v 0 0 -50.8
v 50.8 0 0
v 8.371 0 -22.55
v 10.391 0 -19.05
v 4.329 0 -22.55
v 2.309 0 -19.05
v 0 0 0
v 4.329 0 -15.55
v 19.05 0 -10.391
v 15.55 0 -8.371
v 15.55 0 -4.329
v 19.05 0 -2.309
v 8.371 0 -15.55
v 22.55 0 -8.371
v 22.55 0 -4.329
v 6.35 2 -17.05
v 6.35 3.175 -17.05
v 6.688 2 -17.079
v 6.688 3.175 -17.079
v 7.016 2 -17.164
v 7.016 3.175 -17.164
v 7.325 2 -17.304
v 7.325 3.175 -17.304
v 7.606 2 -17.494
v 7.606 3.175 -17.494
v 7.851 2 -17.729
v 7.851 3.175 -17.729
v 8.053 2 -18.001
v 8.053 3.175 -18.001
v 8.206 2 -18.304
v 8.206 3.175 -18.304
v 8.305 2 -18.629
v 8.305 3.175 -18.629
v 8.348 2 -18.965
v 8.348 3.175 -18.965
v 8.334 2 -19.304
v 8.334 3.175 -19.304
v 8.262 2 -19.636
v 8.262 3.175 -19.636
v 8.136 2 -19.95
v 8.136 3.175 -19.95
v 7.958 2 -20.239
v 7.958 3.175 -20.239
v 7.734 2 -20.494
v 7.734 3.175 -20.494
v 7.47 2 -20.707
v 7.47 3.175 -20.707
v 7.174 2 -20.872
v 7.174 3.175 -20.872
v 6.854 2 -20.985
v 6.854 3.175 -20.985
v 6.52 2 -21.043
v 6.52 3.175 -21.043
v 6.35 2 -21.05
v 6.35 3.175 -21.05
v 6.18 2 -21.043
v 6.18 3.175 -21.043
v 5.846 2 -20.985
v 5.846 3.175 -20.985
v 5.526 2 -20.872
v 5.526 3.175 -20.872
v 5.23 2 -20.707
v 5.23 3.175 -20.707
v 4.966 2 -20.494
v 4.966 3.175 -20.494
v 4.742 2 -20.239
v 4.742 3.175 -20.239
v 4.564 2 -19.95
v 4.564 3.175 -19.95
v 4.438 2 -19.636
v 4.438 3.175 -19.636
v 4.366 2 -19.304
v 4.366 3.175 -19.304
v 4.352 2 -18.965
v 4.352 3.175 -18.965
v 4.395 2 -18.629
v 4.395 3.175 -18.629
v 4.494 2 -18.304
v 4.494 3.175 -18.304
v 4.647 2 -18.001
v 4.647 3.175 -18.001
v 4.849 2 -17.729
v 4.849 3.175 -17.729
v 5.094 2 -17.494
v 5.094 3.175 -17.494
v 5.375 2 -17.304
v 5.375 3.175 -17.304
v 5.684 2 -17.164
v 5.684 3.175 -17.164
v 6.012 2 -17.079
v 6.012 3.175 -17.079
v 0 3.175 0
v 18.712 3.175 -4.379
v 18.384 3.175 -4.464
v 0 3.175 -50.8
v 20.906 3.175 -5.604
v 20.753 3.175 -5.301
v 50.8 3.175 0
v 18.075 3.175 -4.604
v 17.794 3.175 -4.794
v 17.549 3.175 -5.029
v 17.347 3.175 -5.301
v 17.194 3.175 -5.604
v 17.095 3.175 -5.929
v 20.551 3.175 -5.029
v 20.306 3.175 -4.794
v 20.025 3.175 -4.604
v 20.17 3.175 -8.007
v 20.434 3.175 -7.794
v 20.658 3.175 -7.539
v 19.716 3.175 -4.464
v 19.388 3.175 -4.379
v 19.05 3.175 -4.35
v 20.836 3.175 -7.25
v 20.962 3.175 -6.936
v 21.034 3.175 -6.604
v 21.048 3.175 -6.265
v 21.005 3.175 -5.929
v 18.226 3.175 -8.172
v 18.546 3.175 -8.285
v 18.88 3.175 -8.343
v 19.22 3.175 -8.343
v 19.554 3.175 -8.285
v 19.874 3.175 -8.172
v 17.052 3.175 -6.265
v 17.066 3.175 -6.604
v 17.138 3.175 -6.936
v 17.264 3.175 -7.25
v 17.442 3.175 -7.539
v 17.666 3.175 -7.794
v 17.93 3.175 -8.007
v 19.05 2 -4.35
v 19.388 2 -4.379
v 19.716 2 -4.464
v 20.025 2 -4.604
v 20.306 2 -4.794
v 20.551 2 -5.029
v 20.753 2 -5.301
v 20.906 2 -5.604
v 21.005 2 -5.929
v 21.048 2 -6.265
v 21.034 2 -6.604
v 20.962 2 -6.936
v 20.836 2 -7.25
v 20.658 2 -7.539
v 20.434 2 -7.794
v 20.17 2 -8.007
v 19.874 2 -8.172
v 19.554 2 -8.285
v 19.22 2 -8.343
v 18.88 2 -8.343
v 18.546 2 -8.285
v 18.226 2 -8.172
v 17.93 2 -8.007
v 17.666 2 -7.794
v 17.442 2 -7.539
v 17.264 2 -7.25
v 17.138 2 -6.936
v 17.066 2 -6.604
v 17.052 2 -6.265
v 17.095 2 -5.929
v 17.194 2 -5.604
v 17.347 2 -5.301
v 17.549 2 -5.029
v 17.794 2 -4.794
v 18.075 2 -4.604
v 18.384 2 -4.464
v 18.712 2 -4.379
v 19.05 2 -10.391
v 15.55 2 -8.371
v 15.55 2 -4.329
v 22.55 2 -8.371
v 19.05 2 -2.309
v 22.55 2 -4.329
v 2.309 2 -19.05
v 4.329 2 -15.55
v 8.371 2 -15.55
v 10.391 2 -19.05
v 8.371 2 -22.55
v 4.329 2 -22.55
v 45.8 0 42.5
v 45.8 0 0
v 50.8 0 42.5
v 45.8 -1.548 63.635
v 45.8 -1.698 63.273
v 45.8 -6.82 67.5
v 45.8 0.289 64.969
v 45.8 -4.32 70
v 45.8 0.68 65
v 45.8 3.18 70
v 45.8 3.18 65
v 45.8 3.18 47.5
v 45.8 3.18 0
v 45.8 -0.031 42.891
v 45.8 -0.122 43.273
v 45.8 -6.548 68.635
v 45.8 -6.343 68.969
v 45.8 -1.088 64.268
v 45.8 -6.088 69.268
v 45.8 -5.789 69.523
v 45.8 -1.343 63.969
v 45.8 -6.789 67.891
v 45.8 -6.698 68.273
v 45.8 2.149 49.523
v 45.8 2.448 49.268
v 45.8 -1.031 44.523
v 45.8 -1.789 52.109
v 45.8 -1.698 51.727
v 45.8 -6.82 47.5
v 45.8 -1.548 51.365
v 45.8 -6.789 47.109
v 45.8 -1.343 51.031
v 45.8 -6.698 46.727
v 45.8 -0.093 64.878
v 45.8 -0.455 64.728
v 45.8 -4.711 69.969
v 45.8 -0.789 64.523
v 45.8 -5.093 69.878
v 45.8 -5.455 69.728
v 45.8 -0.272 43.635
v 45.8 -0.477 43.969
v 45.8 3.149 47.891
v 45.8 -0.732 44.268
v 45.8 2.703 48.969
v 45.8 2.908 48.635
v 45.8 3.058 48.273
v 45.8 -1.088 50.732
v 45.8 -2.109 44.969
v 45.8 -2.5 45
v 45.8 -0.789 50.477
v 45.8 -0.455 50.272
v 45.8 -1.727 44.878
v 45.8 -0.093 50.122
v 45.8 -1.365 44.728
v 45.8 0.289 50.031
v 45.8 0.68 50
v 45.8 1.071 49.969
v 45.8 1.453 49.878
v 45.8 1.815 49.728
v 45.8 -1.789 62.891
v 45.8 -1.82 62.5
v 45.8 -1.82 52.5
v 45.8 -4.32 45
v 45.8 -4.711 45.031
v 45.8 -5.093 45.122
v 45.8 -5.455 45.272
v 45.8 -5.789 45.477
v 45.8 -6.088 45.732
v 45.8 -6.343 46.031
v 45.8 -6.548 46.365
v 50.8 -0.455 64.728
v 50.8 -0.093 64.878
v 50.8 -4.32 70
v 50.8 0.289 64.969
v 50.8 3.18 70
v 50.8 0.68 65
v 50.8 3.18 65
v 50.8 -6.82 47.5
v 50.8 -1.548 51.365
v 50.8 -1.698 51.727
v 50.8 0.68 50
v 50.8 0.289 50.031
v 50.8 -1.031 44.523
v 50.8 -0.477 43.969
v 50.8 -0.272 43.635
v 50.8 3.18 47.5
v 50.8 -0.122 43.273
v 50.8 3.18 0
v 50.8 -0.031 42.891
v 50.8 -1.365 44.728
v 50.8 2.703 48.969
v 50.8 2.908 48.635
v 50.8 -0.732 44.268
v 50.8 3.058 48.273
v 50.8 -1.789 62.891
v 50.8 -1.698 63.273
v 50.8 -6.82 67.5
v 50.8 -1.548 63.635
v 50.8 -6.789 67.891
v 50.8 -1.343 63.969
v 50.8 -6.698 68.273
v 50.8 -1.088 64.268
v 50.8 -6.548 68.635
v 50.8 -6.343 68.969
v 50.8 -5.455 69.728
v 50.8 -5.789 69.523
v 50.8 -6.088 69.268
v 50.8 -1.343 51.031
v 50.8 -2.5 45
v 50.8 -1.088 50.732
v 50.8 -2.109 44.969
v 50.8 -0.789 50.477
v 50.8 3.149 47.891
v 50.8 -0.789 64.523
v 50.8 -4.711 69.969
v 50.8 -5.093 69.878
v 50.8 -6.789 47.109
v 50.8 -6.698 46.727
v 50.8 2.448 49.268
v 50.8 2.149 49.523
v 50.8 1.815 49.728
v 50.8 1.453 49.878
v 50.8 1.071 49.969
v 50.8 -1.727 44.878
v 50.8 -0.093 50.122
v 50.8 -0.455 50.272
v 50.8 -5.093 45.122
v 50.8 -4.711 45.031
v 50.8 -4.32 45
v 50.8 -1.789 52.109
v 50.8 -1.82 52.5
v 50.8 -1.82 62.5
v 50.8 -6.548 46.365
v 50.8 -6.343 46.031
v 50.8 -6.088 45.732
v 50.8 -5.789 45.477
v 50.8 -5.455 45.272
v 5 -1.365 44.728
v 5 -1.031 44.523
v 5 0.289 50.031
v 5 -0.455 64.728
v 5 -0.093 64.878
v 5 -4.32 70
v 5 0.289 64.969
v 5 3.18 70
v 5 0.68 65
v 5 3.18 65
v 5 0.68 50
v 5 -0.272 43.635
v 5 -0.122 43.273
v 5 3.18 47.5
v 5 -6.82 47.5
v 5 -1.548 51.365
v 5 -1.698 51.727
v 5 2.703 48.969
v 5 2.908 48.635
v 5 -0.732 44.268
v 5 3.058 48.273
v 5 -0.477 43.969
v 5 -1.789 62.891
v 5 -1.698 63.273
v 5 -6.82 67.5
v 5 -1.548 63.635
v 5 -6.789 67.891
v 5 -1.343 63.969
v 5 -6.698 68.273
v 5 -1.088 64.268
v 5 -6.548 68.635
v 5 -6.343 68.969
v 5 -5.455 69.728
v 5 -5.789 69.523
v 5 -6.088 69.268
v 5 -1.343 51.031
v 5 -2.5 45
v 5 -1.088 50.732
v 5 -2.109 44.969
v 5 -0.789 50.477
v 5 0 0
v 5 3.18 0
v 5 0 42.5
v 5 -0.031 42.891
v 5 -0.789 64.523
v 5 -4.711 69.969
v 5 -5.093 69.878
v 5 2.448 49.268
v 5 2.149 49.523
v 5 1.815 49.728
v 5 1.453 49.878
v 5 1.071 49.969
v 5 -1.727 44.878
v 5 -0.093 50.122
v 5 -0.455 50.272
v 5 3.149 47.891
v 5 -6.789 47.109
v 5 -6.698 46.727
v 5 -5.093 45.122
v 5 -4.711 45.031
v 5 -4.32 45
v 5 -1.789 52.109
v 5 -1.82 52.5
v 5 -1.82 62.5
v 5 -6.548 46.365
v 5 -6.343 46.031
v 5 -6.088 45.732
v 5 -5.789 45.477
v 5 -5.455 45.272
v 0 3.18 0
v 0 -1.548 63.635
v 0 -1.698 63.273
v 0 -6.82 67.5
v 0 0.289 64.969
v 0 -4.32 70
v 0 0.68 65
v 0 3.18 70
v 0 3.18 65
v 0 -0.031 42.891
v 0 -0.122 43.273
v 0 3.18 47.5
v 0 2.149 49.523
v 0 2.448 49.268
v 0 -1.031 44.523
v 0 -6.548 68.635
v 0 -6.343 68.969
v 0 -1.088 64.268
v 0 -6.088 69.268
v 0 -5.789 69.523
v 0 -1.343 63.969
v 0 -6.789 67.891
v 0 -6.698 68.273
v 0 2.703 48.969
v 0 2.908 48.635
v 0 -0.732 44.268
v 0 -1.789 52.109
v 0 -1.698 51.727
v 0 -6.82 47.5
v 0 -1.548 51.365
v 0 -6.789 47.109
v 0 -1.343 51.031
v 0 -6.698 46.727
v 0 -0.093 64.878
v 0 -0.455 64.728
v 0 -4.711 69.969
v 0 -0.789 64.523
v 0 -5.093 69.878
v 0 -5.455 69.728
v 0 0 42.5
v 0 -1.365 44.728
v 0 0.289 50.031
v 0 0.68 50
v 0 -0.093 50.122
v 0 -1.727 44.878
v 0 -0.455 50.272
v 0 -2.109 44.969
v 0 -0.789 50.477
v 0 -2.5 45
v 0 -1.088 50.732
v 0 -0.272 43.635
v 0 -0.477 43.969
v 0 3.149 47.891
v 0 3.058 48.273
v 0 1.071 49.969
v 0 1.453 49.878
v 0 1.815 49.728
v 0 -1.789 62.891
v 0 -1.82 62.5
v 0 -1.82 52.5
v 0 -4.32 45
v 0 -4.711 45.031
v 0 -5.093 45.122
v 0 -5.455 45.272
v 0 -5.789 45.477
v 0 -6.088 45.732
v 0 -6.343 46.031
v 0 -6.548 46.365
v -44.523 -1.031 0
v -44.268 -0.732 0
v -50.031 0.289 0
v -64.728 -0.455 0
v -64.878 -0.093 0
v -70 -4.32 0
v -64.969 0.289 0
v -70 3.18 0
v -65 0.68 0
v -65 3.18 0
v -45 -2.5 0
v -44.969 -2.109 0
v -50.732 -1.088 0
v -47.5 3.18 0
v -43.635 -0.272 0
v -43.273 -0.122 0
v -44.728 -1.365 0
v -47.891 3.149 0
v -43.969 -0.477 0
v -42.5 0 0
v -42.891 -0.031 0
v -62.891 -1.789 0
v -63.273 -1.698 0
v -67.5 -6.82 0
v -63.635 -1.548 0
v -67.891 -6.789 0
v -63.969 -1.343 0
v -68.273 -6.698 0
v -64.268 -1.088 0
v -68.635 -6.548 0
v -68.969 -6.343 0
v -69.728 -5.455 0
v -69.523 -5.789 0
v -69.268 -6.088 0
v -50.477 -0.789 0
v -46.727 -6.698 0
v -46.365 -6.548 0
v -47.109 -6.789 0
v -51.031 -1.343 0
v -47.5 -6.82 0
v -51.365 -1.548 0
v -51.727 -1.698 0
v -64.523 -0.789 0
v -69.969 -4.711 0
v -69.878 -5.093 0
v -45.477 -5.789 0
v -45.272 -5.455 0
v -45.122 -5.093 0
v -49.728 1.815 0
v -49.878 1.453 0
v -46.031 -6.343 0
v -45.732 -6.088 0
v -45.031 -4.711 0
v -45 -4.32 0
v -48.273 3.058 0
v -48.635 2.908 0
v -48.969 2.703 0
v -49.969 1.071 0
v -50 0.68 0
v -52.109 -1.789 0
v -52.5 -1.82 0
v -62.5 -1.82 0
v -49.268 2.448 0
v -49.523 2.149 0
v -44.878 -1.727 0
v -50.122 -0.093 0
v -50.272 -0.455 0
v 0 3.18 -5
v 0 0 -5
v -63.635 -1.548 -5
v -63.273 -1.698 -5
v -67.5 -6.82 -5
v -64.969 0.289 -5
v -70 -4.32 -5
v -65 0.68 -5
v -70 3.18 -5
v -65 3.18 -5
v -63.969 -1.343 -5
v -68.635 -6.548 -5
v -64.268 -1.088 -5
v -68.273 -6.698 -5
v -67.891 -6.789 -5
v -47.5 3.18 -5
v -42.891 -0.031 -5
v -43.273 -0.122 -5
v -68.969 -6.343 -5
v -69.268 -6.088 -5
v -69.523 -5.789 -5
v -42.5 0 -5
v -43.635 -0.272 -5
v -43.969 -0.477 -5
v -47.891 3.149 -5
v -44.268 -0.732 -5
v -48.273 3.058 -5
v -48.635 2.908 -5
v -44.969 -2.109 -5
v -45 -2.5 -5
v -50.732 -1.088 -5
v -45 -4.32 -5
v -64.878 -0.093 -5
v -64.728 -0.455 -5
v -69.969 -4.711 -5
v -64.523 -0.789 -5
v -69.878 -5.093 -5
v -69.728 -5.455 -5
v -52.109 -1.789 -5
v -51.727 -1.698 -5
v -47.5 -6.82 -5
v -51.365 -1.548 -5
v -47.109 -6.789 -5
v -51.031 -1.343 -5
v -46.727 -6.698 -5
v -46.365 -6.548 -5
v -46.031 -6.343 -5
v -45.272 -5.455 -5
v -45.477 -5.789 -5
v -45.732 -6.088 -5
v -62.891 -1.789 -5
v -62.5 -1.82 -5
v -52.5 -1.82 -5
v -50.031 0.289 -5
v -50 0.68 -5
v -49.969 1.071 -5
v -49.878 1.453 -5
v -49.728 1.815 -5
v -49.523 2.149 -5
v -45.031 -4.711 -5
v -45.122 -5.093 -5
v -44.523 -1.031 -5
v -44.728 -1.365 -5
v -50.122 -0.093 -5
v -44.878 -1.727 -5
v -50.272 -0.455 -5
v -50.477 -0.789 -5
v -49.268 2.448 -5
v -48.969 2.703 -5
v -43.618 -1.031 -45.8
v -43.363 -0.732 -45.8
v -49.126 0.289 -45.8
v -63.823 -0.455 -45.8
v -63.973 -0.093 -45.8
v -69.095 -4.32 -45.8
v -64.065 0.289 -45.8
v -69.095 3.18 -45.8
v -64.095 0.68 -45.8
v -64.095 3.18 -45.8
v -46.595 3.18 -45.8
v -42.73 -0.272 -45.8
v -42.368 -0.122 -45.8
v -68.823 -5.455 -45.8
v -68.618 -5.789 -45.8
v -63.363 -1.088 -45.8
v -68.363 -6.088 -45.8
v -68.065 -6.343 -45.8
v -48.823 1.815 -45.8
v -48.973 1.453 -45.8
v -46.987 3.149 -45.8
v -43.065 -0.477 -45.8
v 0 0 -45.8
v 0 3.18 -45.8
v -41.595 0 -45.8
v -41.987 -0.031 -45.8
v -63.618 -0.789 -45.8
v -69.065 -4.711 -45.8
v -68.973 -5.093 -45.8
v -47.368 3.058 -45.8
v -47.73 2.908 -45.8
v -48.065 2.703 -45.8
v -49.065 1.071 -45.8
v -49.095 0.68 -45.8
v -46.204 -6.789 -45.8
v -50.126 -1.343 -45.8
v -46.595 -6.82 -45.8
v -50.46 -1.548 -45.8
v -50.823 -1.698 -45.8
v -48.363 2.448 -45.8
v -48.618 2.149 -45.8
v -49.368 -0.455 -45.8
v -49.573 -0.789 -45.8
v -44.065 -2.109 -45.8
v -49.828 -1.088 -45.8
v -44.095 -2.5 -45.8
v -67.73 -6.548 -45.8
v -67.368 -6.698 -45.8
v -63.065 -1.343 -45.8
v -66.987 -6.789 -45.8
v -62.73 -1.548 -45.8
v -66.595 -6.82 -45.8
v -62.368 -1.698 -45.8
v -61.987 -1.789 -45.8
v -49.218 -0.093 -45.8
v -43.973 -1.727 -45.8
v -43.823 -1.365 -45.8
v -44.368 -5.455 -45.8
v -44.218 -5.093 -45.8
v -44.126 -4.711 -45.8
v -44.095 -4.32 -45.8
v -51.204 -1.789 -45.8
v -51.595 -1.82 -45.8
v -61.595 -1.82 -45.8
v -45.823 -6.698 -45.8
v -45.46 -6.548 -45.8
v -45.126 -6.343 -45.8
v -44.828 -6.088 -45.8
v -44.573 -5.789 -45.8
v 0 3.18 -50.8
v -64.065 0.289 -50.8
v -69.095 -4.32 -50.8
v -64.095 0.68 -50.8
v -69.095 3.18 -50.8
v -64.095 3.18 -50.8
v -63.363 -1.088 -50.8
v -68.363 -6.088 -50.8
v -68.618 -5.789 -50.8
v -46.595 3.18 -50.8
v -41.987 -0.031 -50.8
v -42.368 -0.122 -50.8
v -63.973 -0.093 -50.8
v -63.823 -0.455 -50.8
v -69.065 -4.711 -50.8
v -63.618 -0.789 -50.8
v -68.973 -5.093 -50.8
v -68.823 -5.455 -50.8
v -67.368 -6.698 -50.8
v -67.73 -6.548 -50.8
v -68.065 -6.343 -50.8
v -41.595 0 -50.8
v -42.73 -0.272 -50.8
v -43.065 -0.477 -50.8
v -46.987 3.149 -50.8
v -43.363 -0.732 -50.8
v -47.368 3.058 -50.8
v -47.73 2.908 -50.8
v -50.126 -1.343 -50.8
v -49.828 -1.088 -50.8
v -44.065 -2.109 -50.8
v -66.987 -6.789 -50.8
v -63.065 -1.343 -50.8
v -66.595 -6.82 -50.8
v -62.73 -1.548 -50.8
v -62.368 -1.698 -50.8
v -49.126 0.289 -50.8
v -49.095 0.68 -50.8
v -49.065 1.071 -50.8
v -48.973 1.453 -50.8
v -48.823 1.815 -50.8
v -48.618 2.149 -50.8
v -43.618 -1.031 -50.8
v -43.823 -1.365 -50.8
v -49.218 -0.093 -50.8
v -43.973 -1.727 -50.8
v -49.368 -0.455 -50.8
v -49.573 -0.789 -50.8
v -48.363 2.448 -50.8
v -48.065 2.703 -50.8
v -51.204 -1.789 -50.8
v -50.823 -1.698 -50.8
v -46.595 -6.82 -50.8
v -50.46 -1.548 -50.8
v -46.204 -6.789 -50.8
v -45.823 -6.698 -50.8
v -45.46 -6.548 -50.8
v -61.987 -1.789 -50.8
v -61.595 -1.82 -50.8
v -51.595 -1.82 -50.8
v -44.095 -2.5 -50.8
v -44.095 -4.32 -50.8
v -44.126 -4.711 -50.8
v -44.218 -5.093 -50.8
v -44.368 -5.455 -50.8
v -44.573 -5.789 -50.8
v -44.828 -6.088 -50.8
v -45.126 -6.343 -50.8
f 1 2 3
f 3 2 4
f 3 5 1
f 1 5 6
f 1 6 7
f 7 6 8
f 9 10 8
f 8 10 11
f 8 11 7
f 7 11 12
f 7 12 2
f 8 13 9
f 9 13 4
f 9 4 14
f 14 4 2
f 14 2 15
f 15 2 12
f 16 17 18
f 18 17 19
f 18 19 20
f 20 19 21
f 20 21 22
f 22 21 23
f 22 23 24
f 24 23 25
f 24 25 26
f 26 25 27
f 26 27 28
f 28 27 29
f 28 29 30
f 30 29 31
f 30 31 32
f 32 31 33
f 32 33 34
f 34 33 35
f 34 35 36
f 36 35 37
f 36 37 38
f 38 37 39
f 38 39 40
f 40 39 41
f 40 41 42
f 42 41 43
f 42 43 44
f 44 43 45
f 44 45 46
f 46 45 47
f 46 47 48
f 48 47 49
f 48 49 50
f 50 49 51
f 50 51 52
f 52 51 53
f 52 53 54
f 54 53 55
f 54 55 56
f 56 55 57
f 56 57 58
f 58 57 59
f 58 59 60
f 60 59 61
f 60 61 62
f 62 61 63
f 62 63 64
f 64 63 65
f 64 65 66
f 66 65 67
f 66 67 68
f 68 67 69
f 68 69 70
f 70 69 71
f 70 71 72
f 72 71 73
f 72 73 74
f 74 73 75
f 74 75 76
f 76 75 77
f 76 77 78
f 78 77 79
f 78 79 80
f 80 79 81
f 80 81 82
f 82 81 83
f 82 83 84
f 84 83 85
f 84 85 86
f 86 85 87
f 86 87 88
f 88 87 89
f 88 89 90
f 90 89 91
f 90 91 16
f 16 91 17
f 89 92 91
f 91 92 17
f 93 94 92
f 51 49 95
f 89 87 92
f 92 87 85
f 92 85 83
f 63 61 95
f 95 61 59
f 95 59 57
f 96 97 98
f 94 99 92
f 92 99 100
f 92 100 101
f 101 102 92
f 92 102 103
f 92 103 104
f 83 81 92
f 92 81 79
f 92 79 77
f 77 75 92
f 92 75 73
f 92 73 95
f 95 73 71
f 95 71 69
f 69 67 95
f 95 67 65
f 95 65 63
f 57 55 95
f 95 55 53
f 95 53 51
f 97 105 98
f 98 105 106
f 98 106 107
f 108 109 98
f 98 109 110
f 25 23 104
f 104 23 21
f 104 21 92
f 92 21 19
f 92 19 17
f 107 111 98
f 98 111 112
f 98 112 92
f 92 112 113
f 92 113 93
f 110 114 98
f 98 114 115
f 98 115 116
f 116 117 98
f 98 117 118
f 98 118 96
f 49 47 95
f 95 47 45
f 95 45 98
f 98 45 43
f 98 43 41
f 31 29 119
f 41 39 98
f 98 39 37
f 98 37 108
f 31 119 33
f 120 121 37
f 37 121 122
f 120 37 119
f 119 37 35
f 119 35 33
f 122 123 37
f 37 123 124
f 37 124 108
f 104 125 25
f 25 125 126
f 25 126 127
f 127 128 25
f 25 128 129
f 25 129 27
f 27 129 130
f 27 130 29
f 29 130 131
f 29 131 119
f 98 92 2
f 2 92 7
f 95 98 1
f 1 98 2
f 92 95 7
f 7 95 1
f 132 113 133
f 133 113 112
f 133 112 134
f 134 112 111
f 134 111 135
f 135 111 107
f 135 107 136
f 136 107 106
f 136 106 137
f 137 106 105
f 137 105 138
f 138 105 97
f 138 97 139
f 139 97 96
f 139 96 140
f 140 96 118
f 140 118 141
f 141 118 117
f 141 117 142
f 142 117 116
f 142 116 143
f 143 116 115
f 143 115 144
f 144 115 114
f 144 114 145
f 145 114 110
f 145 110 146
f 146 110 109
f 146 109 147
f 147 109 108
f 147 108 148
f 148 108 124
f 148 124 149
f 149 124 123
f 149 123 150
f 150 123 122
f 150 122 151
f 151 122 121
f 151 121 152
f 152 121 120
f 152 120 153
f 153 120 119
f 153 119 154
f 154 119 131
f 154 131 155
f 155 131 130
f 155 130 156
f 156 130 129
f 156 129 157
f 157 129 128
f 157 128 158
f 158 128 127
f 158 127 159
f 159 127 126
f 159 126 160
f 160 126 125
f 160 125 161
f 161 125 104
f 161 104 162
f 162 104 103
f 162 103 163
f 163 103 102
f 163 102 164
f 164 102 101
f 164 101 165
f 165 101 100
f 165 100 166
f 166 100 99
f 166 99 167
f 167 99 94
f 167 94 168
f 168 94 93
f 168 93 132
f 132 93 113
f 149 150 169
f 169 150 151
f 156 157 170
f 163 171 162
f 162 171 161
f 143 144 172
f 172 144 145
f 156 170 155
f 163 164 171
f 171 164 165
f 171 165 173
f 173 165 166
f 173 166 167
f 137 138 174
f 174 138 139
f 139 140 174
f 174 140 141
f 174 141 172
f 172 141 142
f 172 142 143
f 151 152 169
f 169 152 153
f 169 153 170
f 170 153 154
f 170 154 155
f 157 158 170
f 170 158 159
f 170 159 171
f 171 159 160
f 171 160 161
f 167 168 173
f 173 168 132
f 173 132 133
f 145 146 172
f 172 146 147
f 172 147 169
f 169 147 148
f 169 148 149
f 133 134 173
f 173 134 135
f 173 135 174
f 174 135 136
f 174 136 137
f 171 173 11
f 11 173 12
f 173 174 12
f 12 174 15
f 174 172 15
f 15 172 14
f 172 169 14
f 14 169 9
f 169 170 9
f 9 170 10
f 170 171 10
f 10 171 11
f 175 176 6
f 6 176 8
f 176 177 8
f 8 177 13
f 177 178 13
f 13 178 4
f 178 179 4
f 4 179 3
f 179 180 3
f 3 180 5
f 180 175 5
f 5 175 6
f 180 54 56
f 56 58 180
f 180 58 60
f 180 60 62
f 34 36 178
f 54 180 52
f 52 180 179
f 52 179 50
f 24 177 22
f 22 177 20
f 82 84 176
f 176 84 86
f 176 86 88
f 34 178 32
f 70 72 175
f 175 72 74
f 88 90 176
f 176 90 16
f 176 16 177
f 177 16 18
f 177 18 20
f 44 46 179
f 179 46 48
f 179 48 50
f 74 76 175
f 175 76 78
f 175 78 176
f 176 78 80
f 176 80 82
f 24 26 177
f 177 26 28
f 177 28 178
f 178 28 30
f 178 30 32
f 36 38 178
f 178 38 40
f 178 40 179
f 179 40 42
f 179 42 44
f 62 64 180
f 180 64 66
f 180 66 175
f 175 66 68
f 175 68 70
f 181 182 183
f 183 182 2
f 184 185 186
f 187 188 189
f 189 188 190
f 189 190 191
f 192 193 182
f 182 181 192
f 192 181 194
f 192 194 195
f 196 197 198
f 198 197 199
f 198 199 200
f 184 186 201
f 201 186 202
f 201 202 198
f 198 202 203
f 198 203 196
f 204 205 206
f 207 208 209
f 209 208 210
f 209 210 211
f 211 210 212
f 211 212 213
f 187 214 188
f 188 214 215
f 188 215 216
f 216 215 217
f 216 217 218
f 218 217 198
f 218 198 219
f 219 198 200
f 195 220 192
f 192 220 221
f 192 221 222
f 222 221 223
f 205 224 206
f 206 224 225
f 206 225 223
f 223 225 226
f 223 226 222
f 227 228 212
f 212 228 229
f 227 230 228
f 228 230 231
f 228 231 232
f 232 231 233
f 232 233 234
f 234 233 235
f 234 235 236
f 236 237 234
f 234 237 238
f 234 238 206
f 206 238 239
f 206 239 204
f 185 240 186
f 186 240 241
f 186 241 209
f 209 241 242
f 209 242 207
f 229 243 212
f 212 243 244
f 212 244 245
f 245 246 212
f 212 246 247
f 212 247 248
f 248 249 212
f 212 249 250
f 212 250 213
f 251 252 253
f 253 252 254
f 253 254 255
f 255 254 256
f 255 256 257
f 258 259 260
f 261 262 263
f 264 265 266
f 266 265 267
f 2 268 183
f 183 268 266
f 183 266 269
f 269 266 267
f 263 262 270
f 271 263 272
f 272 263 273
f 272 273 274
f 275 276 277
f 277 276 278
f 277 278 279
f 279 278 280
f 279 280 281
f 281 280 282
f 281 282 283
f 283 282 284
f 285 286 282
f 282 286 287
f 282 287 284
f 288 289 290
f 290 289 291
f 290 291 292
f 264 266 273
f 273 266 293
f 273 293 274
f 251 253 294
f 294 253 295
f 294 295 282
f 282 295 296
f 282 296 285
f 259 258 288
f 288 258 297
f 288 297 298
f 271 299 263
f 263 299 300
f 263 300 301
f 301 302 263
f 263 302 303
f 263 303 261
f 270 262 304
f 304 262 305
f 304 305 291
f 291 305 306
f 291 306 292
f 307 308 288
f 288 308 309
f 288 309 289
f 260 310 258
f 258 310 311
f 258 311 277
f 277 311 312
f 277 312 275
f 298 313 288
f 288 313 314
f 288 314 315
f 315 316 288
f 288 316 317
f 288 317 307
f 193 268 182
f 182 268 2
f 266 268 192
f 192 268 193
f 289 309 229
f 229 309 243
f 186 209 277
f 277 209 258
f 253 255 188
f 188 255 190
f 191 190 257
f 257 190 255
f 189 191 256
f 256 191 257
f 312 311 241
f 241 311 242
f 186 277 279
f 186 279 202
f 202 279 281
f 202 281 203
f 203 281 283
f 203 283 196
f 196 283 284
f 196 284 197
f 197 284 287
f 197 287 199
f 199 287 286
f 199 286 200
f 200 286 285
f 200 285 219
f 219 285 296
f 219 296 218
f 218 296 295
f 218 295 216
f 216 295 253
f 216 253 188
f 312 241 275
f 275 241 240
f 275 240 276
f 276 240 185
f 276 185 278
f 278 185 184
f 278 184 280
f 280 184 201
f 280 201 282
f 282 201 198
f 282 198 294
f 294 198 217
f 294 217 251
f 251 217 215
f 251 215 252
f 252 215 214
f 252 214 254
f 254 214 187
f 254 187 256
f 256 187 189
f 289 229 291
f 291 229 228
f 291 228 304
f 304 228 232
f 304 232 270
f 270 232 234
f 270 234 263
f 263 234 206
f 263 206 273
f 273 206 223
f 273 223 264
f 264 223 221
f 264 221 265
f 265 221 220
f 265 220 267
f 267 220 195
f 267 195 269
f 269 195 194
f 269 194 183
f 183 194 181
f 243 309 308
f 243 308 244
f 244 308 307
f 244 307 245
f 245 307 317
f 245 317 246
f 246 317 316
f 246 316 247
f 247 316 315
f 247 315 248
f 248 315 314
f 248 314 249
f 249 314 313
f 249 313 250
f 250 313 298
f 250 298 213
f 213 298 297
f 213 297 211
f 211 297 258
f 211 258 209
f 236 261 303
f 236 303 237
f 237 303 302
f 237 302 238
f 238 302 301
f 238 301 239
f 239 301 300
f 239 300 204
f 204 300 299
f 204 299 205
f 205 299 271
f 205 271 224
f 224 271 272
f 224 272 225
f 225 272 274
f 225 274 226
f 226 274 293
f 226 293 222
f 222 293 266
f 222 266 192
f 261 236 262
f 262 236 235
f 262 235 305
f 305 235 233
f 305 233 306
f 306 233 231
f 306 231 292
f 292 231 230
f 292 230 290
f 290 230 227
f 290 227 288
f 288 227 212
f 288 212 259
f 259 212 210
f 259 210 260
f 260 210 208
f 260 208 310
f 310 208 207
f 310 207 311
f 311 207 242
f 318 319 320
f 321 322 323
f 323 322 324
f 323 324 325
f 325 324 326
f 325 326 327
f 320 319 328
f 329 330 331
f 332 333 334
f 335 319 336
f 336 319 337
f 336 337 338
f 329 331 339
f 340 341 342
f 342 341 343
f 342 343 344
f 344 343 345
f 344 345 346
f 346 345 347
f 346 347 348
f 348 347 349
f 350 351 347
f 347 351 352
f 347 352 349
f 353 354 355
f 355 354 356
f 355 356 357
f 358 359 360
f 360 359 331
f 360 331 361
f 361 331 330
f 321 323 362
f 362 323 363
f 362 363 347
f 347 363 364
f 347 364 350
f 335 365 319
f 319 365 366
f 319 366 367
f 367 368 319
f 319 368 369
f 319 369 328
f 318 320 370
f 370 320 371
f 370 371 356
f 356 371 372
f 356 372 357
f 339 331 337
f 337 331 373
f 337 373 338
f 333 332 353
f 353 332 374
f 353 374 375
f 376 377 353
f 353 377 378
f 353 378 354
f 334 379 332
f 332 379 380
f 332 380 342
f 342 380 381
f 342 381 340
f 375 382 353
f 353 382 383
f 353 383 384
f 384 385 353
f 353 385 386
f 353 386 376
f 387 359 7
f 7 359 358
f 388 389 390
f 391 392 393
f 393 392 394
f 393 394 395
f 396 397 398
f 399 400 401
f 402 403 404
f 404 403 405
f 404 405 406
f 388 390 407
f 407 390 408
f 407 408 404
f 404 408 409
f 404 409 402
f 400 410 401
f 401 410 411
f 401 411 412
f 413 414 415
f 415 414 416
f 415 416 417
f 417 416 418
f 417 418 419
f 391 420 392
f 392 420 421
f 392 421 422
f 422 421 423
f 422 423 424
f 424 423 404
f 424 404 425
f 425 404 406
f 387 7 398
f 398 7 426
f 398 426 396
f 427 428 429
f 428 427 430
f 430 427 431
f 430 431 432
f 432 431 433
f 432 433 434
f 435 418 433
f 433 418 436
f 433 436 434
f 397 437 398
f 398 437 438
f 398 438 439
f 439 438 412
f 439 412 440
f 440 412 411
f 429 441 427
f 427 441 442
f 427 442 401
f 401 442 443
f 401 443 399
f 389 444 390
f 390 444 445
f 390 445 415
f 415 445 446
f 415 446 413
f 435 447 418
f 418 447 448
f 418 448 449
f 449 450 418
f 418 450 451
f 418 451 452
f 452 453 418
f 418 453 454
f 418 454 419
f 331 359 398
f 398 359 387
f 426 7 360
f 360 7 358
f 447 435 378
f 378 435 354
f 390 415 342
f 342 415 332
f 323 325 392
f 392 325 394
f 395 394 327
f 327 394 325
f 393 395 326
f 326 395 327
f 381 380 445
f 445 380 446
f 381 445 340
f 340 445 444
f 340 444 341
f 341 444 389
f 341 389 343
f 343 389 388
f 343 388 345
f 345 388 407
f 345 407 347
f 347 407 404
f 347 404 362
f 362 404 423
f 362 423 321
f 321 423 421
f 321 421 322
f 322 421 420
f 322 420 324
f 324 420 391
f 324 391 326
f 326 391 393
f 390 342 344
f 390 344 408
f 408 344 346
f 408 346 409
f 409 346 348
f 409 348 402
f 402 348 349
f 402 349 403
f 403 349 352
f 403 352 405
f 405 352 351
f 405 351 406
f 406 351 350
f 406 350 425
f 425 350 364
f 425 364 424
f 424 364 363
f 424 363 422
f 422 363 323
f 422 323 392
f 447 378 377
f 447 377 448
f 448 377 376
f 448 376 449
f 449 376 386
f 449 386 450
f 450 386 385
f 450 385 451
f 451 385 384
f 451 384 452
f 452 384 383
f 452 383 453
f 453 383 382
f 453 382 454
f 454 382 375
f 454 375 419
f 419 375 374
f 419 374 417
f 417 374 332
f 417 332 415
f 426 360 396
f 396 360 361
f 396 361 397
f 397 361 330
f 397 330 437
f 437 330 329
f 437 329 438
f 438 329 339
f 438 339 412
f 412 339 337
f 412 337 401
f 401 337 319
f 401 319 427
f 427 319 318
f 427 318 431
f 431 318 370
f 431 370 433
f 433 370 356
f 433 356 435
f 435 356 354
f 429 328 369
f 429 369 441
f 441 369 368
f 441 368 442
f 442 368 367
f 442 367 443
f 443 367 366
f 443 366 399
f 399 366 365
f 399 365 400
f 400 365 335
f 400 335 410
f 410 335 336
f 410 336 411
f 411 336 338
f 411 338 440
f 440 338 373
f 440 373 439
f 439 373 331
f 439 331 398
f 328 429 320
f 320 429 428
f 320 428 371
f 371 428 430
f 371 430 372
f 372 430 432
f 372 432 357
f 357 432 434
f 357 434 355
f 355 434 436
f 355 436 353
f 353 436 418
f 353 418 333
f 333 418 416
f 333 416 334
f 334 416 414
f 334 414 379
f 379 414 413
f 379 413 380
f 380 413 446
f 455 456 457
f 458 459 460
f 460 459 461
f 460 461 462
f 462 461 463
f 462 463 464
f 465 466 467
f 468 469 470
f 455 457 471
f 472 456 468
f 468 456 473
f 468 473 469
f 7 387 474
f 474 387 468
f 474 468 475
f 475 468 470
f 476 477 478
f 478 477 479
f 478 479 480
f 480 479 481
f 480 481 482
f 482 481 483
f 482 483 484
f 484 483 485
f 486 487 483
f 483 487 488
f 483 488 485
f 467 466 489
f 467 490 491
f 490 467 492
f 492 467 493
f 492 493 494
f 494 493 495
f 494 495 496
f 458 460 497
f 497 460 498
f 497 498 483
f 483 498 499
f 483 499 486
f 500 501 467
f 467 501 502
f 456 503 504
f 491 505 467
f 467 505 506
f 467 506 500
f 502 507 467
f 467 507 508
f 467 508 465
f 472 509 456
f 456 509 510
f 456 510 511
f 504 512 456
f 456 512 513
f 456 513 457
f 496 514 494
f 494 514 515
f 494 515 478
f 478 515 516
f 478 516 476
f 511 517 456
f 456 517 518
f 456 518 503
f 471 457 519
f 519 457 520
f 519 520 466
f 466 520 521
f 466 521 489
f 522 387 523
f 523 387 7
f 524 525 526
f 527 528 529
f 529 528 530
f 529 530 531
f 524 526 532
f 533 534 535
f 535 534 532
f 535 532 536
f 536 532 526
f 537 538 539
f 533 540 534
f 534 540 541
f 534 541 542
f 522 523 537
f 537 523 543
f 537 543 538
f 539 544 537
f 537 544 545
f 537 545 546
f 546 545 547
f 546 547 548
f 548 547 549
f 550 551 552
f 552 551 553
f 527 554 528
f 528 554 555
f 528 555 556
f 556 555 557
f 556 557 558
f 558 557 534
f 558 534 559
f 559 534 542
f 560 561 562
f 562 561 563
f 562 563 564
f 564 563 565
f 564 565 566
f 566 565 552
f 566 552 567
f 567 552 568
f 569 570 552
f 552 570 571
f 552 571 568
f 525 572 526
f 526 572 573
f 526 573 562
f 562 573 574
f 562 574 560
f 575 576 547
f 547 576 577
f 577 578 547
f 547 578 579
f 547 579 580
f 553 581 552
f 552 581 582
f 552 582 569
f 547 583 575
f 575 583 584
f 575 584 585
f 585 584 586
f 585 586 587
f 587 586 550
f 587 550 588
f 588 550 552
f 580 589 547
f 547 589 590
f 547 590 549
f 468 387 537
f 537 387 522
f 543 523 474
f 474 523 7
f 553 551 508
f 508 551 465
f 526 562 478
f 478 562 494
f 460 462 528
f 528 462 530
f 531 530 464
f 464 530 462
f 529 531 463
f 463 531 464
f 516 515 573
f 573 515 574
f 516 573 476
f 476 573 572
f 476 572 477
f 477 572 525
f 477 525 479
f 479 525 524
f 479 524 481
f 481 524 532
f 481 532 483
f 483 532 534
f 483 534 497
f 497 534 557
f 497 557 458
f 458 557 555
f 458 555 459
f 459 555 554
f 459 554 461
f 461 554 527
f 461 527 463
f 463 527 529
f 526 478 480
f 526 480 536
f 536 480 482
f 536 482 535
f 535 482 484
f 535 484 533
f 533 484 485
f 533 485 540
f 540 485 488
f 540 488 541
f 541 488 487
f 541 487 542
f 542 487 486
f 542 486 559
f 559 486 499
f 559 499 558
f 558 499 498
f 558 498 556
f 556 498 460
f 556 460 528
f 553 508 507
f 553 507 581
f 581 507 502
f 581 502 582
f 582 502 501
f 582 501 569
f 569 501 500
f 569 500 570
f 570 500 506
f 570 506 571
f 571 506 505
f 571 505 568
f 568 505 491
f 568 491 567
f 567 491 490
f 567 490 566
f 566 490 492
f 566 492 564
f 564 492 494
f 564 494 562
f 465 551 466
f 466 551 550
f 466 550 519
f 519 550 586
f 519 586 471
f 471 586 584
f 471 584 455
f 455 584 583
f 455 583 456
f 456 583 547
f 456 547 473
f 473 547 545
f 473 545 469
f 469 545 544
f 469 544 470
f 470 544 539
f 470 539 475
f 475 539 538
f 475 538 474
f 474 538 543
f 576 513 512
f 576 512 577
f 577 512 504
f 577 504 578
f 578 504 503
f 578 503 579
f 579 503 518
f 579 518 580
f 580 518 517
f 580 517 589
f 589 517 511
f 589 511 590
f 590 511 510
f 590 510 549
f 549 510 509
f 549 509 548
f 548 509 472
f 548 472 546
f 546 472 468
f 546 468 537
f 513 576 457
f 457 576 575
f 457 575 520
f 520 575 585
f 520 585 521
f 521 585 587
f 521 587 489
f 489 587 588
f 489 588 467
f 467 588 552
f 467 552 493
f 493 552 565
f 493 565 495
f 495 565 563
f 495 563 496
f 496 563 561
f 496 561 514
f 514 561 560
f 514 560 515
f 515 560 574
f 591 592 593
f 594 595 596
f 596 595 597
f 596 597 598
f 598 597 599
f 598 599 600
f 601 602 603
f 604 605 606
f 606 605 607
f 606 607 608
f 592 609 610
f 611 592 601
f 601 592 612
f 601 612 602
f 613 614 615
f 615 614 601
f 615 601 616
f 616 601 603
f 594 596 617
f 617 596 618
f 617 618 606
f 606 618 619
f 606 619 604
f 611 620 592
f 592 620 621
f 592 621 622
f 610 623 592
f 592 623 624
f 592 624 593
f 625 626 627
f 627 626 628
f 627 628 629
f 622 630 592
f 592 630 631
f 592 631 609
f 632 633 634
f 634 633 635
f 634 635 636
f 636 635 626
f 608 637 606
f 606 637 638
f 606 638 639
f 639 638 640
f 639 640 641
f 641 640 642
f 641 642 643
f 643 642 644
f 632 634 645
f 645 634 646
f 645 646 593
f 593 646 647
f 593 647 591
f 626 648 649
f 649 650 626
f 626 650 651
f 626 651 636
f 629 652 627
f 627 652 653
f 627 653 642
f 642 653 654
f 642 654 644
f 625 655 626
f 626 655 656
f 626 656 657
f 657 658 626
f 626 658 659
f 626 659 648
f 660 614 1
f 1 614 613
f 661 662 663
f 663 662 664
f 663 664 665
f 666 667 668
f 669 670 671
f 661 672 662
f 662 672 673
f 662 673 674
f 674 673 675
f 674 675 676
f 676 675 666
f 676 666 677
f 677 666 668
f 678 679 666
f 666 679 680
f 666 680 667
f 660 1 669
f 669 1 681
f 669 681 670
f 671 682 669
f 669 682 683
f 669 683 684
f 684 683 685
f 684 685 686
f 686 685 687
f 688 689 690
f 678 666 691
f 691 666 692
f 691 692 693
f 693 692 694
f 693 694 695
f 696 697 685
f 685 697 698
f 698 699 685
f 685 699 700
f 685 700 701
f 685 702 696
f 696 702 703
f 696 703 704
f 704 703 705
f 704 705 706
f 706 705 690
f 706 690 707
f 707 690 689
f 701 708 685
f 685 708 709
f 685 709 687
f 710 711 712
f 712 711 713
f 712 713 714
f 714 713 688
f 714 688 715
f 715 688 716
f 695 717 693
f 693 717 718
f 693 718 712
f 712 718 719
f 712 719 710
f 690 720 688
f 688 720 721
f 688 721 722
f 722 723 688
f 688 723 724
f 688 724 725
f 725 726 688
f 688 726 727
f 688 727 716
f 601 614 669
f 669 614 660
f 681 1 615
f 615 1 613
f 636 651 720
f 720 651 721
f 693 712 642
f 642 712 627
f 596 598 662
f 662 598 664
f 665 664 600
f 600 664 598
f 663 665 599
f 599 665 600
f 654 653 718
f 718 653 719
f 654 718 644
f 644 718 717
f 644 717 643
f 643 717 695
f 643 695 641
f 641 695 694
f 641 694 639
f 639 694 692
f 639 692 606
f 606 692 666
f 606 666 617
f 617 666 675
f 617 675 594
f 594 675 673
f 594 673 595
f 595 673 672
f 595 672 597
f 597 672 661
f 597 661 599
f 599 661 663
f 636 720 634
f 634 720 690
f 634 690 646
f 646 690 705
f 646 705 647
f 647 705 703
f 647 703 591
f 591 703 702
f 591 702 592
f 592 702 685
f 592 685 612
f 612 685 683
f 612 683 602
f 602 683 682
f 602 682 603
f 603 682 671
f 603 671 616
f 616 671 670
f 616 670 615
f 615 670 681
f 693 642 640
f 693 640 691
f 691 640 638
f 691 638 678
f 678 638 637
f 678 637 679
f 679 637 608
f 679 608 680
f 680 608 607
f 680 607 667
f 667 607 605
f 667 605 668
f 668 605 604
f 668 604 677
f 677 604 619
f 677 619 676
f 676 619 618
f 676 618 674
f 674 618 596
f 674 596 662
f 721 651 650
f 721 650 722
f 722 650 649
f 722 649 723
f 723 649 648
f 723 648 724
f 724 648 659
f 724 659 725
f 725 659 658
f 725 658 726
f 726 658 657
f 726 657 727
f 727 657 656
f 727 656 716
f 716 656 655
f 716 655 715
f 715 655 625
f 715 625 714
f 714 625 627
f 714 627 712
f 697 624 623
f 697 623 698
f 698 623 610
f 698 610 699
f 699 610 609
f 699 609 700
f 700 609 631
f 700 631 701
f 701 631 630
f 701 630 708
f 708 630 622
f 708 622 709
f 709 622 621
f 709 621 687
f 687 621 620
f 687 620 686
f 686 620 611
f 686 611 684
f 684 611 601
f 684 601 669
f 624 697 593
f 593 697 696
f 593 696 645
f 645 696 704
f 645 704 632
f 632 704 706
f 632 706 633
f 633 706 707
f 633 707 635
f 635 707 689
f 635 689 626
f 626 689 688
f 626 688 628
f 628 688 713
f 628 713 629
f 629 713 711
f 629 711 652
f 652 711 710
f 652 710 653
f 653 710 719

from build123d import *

# Parameters (mm, degrees)
BOSS_EXTRUDE1_DEPTH   = 3.175
SKETCH2_R             = 2
CUT_EXTRUDE1_DEPTH    = 72.912172996
CUT_EXTRUDE2_START    = -3.175
CUT_EXTRUDE2_DEPTH    = 2
SKETCH5_W             = 5
SKETCH5_H             = 45
BOSS_EXTRUDE6_DEPTH   = 3.18
BOSS_EXTRUDE6_2_DEPTH = 3.18
SKETCH5_W_2           = 45
SKETCH5_H_2           = 5
BOSS_EXTRUDE6_3_DEPTH = 3.18
SKETCH5_W_3           = 44.095460655
BOSS_EXTRUDE6_4_DEPTH = 3.18
BOSS_EXTRUDE7_DEPTH   = 5
FILLET1_START         = 45
FILLET1_DEPTH         = 7
FILLET1_START_2       = 45.8
FILLET1_2_DEPTH       = 5
BOSS_EXTRUDE8_DEPTH   = 5
FILLET2_START         = -1
FILLET2_DEPTH         = 7
FILLET2_2_DEPTH       = 5
BOSS_EXTRUDE9_DEPTH   = 5
FILLET3_START         = -6
FILLET3_DEPTH         = 7
FILLET3_START_2       = -5
FILLET3_2_DEPTH       = 5
BOSS_EXTRUDE10_DEPTH  = 5
FILLET4_START         = -52
FILLET4_DEPTH         = 7
FILLET4_START_2       = -50.8
FILLET4_2_DEPTH       = 5


with BuildPart() as part:
    # Sketch1 → Boss-Extrude1 (new body)
    with BuildSketch(Plane(origin=(0, 0, 0), x_dir=(1, 0, 0), z_dir=(0, 1, 0))):
        Polygon((0, 0), (50.8, 0), (0, 50.8), align=None)
    extrude(amount=BOSS_EXTRUDE1_DEPTH)

    # Sketch2 → Cut-Extrude1 (cut, through all)
    with BuildSketch(Plane(origin=(0, 3.175, 0), x_dir=(1, 0, 0), z_dir=(0, 1, 0))):
        with Locations(Location((19.05, 6.35, 0), (0, 0, 270))):
            Circle(SKETCH2_R)
        with Locations(Location((6.35, 19.05, 0), (0, 0, 90))):
            Circle(SKETCH2_R)
    extrude(amount=-CUT_EXTRUDE1_DEPTH, mode=Mode.SUBTRACT)

    # Sketch3 → Cut-Extrude2 (cut)
    with BuildSketch(Plane(origin=(0, 3.175, 0), x_dir=(1, 0, 0), z_dir=(0, 1, 0)).offset(CUT_EXTRUDE2_START)):
        Polygon((8.370723055, 15.550005), (10.391446111, 19.05), (8.370723055, 22.549995), (4.329276945, 22.549995), (2.308553889, 19.05), (4.329276945, 15.550005), align=None)
        Polygon((22.549995, 4.329276945), (19.05, 2.308553889), (15.550005, 4.329276945), (15.550005, 8.370723055), (19.05, 10.391446111), (22.549995, 8.370723055), align=None)
    extrude(amount=CUT_EXTRUDE2_DEPTH, mode=Mode.SUBTRACT)


with BuildPart() as body_2:
    # Sketch5 → Boss-Extrude6 (new body)
    with BuildSketch(Plane(origin=(0, 0, 0), x_dir=(1, 0, 0), z_dir=(0, 1, 0))):
        with Locations((48.3, -22.5)):
            Rectangle(SKETCH5_W, SKETCH5_H)
    extrude(amount=BOSS_EXTRUDE6_DEPTH)

    # Sketch7 → Boss-Extrude7 (add)
    with BuildSketch(Plane(origin=(50.8, 0, 0), x_dir=(0, 0, -1), z_dir=(1, 0, 0))):
        Polygon((-45, 3.18), (-50, 3.18), (-50, -1.82), (-65, -1.82), (-65, 3.18), (-70, 3.18), (-70, -6.82), (-45, -6.82), align=None)
    extrude(amount=-BOSS_EXTRUDE7_DEPTH)

    # Fillet1: read off the stored shape, not the designer's step
    # Fillet1 outline → Fillet1 (cut)
    with BuildSketch(Plane.YZ.offset(FILLET1_START)):
        with BuildLine():
            ThreePointArc((-4.32, 45), (-6.087766953, 45.732233047), (-6.82, 47.5))
            Line((-6.82, 47.5), (-6.82, 45))
            Line((-6.82, 45), (-4.32, 45))
        make_face()
        with BuildLine():
            Line((3.18, 50), (0.68, 50))
            ThreePointArc((0.68, 50), (2.447766953, 49.267766953), (3.18, 47.5))
            Line((3.18, 47.5), (3.18, 50))
        make_face()
        with BuildLine():
            ThreePointArc((-6.82, 67.5), (-6.087766953, 69.267766953), (-4.32, 70))
            Line((-4.32, 70), (-6.82, 70))
            Line((-6.82, 70), (-6.82, 67.5))
        make_face()
    extrude(amount=FILLET1_DEPTH, mode=Mode.SUBTRACT)

    # Fillet1 2 outline → Fillet1 2 (add)
    with BuildSketch(Plane.YZ.offset(FILLET1_START_2)):
        with BuildLine():
            Line((0, 45), (-2.5, 45))
            ThreePointArc((-2.5, 45), (-0.732233047, 44.267766953), (0, 42.5))
            Line((0, 42.5), (0, 45))
        make_face()
        with BuildLine():
            ThreePointArc((0.68, 50), (-1.087766953, 50.732233047), (-1.82, 52.5))
            Line((-1.82, 52.5), (-1.82, 50))
            Line((-1.82, 50), (0.68, 50))
        make_face()
        with BuildLine():
            ThreePointArc((-1.82, 62.5), (-1.087766953, 64.267766953), (0.68, 65))
            Line((0.68, 65), (-1.82, 65))
            Line((-1.82, 65), (-1.82, 62.5))
        make_face()
    extrude(amount=FILLET1_2_DEPTH)


with BuildPart() as body_3:
    # Sketch5 → Boss-Extrude6 2 (new body)
    with BuildSketch(Plane(origin=(0, 0, 0), x_dir=(1, 0, 0), z_dir=(0, 1, 0))):
        with Locations((2.5, -22.5)):
            Rectangle(SKETCH5_W, SKETCH5_H)
    extrude(amount=BOSS_EXTRUDE6_2_DEPTH)

    # Sketch9 → Boss-Extrude8 (add)
    with BuildSketch(Plane(origin=(5, 0, 0), x_dir=(0, 0, -1), z_dir=(1, 0, 0))):
        Polygon((-45, 3.18), (-45, -6.82), (-70, -6.82), (-70, 3.18), (-65, 3.18), (-65, -1.82), (-50, -1.82), (-50, 3.18), align=None)
    extrude(amount=-BOSS_EXTRUDE8_DEPTH)

    # Fillet2: read off the stored shape, not the designer's step
    # Fillet2 outline → Fillet2 (cut)
    with BuildSketch(Plane.YZ.offset(FILLET2_START)):
        with BuildLine():
            Line((3.18, 50), (0.68, 50))
            ThreePointArc((0.68, 50), (2.447766953, 49.267766953), (3.18, 47.5))
            Line((3.18, 47.5), (3.18, 50))
        make_face()
        with BuildLine():
            ThreePointArc((-4.32, 45), (-6.087766953, 45.732233047), (-6.82, 47.5))
            Line((-6.82, 47.5), (-6.82, 45))
            Line((-6.82, 45), (-4.32, 45))
        make_face()
        with BuildLine():
            ThreePointArc((-6.82, 67.5), (-6.087766953, 69.267766953), (-4.32, 70))
            Line((-4.32, 70), (-6.82, 70))
            Line((-6.82, 70), (-6.82, 67.5))
        make_face()
    extrude(amount=FILLET2_DEPTH, mode=Mode.SUBTRACT)

    # Fillet2 2 outline → Fillet2 2 (add)
    with BuildSketch(Plane.YZ):
        with BuildLine():
            Line((-1.82, 65), (-1.82, 62.5))
            ThreePointArc((-1.82, 62.5), (-1.087766953, 64.267766953), (0.68, 65))
            Line((0.68, 65), (-1.82, 65))
        make_face()
        with BuildLine():
            ThreePointArc((0.68, 50), (-1.087766953, 50.732233047), (-1.82, 52.5))
            Line((-1.82, 52.5), (-1.82, 50))
            Line((-1.82, 50), (0.68, 50))
        make_face()
        with BuildLine():
            Line((0, 45), (-2.5, 45))
            ThreePointArc((-2.5, 45), (-0.732233047, 44.267766953), (0, 42.5))
            Line((0, 42.5), (0, 45))
        make_face()
    extrude(amount=FILLET2_2_DEPTH)


with BuildPart() as body_4:
    # Sketch5 → Boss-Extrude6 3 (new body)
    with BuildSketch(Plane(origin=(0, 0, 0), x_dir=(1, 0, 0), z_dir=(0, 1, 0))):
        with Locations((-22.5, 2.5)):
            Rectangle(SKETCH5_W_2, SKETCH5_H_2)
    extrude(amount=BOSS_EXTRUDE6_3_DEPTH)

    # Sketch10 → Boss-Extrude9 (add)
    with BuildSketch(Plane.XY):
        Polygon((-45, 3.18), (-45, -6.82), (-70, -6.82), (-70, 3.18), (-65, 3.18), (-65, -1.82), (-50, -1.82), (-50, 3.18), align=None)
    extrude(amount=-BOSS_EXTRUDE9_DEPTH)

    # Fillet3: read off the stored shape, not the designer's step
    # Fillet3 outline → Fillet3 (cut)
    with BuildSketch(Plane.XY.offset(FILLET3_START)):
        with BuildLine():
            Line((-50, 3.18), (-50, 0.68))
            ThreePointArc((-50, 0.68), (-49.267766953, 2.447766953), (-47.5, 3.18))
            Line((-47.5, 3.18), (-50, 3.18))
        make_face()
        with BuildLine():
            ThreePointArc((-45, -4.32), (-45.732233047, -6.087766953), (-47.5, -6.82))
            Line((-47.5, -6.82), (-45, -6.82))
            Line((-45, -6.82), (-45, -4.32))
        make_face()
        with BuildLine():
            ThreePointArc((-67.5, -6.82), (-69.267766953, -6.087766953), (-70, -4.32))
            Line((-70, -4.32), (-70, -6.82))
            Line((-70, -6.82), (-67.5, -6.82))
        make_face()
    extrude(amount=FILLET3_DEPTH, mode=Mode.SUBTRACT)

    # Fillet3 2 outline → Fillet3 2 (add)
    with BuildSketch(Plane.XY.offset(FILLET3_START_2)):
        with BuildLine():
            Line((-65, -1.82), (-62.5, -1.82))
            ThreePointArc((-62.5, -1.82), (-64.267766953, -1.087766953), (-65, 0.68))
            Line((-65, 0.68), (-65, -1.82))
        make_face()
        with BuildLine():
            ThreePointArc((-50, 0.68), (-50.732233047, -1.087766953), (-52.5, -1.82))
            Line((-52.5, -1.82), (-50, -1.82))
            Line((-50, -1.82), (-50, 0.68))
        make_face()
        with BuildLine():
            Line((-45, 0), (-45, -2.5))
            ThreePointArc((-45, -2.5), (-44.267766953, -0.732233047), (-42.5, 0))
            Line((-42.5, 0), (-45, 0))
        make_face()
    extrude(amount=FILLET3_2_DEPTH)


with BuildPart() as body_5:
    # Sketch5 → Boss-Extrude6 4 (new body)
    with BuildSketch(Plane(origin=(0, 0, 0), x_dir=(1, 0, 0), z_dir=(0, 1, 0))):
        with Locations((-22.047730328, 48.3)):
            Rectangle(SKETCH5_W_3, SKETCH5_H_2)
    extrude(amount=BOSS_EXTRUDE6_4_DEPTH)

    # Sketch12 → Boss-Extrude10 (add)
    with BuildSketch(Plane.XY.offset(-45.8)):
        Polygon((-44.095460655, 3.18), (-44.095460655, -6.82), (-69.095460655, -6.82), (-69.095460655, 3.18), (-64.095460655, 3.18), (-64.095460655, -1.82), (-49.095460655, -1.82), (-49.095460655, 3.18), align=None)
    extrude(amount=-BOSS_EXTRUDE10_DEPTH)

    # Fillet4: read off the stored shape, not the designer's step
    # Fillet4 outline → Fillet4 (cut)
    with BuildSketch(Plane.XY.offset(FILLET4_START)):
        with BuildLine():
            Line((-49.095460655, 3.18), (-49.095460655, 0.68))
            ThreePointArc((-49.095460655, 0.68), (-48.363227608, 2.447766953), (-46.595460655, 3.18))
            Line((-46.595460655, 3.18), (-49.095460655, 3.18))
        make_face()
        with BuildLine():
            ThreePointArc((-44.095460655, -4.32), (-44.827693702, -6.087766953), (-46.595460655, -6.82))
            Line((-46.595460655, -6.82), (-44.095460655, -6.82))
            Line((-44.095460655, -6.82), (-44.095460655, -4.32))
        make_face()
        with BuildLine():
            ThreePointArc((-66.595460655, -6.82), (-68.363227608, -6.087766953), (-69.095460655, -4.32))
            Line((-69.095460655, -4.32), (-69.095460655, -6.82))
            Line((-69.095460655, -6.82), (-66.595460655, -6.82))
        make_face()
    extrude(amount=FILLET4_DEPTH, mode=Mode.SUBTRACT)

    # Fillet4 2 outline → Fillet4 2 (add)
    with BuildSketch(Plane.XY.offset(FILLET4_START_2)):
        with BuildLine():
            Line((-64.095460655, -1.82), (-61.595460655, -1.82))
            ThreePointArc((-61.595460655, -1.82), (-63.363227608, -1.087766953), (-64.095460655, 0.68))
            Line((-64.095460655, 0.68), (-64.095460655, -1.82))
        make_face()
        with BuildLine():
            ThreePointArc((-49.095460655, 0.68), (-49.827693702, -1.087766953), (-51.595460655, -1.82))
            Line((-51.595460655, -1.82), (-49.095460655, -1.82))
            Line((-49.095460655, -1.82), (-49.095460655, 0.68))
        make_face()
        with BuildLine():
            Line((-44.095460655, 0), (-44.095460655, -2.5))
            ThreePointArc((-44.095460655, -2.5), (-43.363227608, -0.732233047), (-41.595460655, 0))
            Line((-41.595460655, 0), (-44.095460655, 0))
        make_face()
    extrude(amount=FILLET4_2_DEPTH)


solid = Compound([part.part, body_2.part, body_3.part, body_4.part, body_5.part])
